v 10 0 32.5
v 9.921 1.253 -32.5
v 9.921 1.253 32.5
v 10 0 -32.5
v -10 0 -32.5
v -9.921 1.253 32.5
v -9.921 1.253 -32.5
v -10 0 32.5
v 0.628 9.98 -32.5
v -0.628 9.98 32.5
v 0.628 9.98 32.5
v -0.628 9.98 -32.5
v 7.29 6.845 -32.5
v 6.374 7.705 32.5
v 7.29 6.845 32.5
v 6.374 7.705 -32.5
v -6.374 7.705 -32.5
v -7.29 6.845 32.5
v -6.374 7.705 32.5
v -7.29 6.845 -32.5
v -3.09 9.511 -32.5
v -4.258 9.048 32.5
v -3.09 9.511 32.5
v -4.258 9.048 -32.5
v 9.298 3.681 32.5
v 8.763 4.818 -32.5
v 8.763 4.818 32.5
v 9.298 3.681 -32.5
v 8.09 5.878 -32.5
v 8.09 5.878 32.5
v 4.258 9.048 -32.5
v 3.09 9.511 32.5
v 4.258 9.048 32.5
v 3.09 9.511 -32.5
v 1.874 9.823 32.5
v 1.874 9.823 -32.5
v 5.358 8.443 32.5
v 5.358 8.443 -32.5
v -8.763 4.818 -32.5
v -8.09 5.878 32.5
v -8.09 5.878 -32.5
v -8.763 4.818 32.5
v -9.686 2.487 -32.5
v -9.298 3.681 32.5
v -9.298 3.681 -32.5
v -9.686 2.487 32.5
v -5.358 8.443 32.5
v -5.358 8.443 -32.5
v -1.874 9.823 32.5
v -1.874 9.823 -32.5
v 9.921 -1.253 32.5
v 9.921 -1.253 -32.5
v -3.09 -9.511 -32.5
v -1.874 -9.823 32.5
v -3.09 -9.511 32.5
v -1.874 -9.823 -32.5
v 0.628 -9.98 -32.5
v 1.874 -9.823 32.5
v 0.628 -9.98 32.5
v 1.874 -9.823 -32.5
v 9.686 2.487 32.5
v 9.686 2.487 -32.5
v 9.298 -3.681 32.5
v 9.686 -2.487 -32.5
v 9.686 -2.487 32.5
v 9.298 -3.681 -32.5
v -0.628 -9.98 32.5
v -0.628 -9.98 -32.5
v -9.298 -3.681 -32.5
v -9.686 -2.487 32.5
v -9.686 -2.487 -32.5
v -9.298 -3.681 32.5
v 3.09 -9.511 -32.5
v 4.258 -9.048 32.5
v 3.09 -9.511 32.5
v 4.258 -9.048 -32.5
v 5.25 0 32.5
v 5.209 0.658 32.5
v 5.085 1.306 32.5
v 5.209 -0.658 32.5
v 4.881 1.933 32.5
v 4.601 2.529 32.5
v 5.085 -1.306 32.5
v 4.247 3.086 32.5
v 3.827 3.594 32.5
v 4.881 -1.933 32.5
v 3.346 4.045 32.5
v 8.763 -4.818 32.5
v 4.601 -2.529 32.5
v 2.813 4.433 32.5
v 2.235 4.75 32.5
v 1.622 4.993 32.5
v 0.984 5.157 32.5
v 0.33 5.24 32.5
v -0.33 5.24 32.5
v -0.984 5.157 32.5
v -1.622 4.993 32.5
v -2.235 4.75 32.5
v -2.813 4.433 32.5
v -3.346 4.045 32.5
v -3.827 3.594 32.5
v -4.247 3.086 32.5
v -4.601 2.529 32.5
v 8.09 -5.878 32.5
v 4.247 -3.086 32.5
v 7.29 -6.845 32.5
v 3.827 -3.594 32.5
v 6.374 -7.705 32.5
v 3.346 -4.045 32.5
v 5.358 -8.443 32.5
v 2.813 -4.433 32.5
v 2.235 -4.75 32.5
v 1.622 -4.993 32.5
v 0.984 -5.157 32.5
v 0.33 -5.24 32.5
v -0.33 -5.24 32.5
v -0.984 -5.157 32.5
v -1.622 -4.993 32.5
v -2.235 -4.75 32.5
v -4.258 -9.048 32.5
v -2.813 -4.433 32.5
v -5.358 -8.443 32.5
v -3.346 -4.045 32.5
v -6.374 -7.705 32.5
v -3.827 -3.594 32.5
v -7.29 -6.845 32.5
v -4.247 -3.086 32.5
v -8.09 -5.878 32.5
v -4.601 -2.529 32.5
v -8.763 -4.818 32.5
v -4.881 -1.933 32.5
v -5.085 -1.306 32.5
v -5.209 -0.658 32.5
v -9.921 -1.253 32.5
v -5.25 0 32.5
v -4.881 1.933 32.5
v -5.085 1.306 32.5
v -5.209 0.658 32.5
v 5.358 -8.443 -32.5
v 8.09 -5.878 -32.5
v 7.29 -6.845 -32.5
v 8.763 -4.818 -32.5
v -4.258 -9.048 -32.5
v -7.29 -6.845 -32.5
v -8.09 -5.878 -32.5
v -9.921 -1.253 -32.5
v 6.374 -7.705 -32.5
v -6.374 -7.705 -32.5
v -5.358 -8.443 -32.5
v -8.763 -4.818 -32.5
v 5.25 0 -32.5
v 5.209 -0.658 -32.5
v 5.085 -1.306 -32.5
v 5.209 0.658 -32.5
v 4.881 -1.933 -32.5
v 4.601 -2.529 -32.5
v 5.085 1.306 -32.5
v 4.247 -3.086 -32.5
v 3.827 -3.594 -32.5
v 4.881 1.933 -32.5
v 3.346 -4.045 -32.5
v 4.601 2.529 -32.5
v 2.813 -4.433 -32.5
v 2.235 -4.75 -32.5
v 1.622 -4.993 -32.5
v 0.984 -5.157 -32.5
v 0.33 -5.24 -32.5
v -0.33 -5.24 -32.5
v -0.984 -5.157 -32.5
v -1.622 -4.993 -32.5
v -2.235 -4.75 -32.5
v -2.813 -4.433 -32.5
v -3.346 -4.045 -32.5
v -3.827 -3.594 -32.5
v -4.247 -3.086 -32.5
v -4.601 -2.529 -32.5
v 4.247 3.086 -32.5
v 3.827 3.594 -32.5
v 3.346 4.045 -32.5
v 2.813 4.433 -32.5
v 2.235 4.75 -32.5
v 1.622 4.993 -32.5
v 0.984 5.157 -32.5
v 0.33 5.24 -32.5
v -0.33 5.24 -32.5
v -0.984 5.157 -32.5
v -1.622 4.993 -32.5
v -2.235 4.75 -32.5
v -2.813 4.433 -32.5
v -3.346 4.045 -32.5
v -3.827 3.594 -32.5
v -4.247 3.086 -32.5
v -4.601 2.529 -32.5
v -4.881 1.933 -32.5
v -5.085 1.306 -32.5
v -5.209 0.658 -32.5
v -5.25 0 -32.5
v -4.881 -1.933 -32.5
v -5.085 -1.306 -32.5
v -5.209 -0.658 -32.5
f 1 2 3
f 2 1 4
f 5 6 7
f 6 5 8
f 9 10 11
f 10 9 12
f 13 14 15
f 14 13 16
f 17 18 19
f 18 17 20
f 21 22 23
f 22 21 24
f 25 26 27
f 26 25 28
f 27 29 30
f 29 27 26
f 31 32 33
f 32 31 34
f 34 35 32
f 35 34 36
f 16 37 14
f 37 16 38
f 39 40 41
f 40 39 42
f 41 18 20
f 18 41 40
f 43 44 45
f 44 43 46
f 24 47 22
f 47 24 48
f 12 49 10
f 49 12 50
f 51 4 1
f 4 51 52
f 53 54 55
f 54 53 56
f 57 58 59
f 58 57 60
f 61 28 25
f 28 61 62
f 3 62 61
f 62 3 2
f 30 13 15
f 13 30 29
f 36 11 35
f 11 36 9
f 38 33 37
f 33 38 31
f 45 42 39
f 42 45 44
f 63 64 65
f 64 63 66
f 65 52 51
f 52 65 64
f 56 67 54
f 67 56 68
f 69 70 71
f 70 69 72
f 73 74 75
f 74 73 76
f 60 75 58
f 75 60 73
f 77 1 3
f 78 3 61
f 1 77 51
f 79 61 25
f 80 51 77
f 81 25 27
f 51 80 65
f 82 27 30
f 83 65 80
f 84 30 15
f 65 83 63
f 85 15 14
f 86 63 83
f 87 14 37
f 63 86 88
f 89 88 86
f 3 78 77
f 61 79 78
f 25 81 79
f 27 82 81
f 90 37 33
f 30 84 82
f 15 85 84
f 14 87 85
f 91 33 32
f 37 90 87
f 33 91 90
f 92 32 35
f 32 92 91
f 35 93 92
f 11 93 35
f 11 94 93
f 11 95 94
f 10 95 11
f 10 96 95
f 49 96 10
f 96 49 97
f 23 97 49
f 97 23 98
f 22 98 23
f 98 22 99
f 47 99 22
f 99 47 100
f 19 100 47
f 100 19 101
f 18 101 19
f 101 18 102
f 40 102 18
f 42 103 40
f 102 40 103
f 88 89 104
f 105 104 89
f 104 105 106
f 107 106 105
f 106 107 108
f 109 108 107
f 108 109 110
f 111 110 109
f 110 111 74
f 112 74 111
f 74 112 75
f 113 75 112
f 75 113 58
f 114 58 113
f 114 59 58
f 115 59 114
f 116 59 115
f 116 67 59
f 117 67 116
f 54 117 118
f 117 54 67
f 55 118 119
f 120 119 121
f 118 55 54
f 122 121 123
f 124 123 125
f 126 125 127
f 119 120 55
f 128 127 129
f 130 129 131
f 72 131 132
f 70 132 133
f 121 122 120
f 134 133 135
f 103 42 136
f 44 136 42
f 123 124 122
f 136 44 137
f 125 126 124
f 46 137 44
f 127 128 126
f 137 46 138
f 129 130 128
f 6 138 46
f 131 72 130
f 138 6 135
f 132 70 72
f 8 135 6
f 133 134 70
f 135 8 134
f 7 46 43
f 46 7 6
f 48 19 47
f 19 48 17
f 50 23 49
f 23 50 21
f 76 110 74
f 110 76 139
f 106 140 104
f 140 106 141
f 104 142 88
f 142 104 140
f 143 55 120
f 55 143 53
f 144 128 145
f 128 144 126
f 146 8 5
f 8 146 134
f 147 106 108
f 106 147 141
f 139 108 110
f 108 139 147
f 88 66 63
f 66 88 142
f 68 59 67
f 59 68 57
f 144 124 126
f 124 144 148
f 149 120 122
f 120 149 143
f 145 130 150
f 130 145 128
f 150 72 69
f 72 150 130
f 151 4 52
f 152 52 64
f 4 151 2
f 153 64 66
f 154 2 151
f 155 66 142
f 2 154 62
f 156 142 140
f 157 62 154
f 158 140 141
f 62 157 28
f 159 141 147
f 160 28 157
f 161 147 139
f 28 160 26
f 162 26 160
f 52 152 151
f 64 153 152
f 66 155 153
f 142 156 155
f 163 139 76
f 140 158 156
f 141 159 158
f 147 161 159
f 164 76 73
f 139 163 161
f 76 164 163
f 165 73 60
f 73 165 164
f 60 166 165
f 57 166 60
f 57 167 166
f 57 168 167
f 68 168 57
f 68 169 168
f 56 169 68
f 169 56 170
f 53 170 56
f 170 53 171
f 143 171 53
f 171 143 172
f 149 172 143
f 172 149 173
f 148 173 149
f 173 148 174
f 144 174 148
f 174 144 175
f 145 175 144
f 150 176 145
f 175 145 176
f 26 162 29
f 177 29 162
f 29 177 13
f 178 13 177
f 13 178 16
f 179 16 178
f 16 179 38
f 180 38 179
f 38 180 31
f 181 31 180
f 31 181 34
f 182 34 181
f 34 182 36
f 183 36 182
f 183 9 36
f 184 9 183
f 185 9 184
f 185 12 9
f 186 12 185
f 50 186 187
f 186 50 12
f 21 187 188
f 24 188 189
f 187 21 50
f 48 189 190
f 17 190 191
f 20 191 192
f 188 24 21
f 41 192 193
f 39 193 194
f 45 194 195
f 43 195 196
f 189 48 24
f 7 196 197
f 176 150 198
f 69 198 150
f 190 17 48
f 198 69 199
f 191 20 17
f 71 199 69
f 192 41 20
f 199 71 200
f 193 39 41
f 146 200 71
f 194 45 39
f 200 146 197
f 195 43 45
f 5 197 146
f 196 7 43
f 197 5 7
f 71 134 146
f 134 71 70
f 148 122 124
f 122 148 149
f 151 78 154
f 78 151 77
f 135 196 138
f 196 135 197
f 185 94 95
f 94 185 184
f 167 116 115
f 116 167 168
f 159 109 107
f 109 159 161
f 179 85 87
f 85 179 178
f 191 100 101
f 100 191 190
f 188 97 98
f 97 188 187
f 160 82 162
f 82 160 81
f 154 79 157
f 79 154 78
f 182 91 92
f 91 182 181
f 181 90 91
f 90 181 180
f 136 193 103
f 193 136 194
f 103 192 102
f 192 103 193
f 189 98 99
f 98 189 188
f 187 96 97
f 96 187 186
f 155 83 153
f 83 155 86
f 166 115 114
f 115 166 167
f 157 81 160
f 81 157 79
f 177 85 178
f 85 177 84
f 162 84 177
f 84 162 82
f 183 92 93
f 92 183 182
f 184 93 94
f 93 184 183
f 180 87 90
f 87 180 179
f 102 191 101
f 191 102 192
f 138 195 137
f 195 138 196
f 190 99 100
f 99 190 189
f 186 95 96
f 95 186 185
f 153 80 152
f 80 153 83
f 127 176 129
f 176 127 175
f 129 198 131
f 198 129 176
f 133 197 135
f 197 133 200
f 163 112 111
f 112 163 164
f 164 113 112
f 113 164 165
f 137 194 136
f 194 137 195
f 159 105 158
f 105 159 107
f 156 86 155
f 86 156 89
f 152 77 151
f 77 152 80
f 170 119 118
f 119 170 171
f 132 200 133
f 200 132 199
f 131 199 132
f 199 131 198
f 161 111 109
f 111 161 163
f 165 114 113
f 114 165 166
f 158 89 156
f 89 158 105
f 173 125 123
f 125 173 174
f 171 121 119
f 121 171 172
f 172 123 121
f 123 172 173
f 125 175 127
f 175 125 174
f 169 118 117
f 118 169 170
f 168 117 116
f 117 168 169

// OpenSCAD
$fn = 50;


difference() {
	union() {
		translate(v = [0, 0, -32.5000000000]) {
			cylinder(h = 65, r = 10.0000000000);
		}
	}
	union() {
		translate(v = [0, 0, -100.0000000000]) {
			cylinder(h = 200, r = 5.2500000000);
		}
	}
}
